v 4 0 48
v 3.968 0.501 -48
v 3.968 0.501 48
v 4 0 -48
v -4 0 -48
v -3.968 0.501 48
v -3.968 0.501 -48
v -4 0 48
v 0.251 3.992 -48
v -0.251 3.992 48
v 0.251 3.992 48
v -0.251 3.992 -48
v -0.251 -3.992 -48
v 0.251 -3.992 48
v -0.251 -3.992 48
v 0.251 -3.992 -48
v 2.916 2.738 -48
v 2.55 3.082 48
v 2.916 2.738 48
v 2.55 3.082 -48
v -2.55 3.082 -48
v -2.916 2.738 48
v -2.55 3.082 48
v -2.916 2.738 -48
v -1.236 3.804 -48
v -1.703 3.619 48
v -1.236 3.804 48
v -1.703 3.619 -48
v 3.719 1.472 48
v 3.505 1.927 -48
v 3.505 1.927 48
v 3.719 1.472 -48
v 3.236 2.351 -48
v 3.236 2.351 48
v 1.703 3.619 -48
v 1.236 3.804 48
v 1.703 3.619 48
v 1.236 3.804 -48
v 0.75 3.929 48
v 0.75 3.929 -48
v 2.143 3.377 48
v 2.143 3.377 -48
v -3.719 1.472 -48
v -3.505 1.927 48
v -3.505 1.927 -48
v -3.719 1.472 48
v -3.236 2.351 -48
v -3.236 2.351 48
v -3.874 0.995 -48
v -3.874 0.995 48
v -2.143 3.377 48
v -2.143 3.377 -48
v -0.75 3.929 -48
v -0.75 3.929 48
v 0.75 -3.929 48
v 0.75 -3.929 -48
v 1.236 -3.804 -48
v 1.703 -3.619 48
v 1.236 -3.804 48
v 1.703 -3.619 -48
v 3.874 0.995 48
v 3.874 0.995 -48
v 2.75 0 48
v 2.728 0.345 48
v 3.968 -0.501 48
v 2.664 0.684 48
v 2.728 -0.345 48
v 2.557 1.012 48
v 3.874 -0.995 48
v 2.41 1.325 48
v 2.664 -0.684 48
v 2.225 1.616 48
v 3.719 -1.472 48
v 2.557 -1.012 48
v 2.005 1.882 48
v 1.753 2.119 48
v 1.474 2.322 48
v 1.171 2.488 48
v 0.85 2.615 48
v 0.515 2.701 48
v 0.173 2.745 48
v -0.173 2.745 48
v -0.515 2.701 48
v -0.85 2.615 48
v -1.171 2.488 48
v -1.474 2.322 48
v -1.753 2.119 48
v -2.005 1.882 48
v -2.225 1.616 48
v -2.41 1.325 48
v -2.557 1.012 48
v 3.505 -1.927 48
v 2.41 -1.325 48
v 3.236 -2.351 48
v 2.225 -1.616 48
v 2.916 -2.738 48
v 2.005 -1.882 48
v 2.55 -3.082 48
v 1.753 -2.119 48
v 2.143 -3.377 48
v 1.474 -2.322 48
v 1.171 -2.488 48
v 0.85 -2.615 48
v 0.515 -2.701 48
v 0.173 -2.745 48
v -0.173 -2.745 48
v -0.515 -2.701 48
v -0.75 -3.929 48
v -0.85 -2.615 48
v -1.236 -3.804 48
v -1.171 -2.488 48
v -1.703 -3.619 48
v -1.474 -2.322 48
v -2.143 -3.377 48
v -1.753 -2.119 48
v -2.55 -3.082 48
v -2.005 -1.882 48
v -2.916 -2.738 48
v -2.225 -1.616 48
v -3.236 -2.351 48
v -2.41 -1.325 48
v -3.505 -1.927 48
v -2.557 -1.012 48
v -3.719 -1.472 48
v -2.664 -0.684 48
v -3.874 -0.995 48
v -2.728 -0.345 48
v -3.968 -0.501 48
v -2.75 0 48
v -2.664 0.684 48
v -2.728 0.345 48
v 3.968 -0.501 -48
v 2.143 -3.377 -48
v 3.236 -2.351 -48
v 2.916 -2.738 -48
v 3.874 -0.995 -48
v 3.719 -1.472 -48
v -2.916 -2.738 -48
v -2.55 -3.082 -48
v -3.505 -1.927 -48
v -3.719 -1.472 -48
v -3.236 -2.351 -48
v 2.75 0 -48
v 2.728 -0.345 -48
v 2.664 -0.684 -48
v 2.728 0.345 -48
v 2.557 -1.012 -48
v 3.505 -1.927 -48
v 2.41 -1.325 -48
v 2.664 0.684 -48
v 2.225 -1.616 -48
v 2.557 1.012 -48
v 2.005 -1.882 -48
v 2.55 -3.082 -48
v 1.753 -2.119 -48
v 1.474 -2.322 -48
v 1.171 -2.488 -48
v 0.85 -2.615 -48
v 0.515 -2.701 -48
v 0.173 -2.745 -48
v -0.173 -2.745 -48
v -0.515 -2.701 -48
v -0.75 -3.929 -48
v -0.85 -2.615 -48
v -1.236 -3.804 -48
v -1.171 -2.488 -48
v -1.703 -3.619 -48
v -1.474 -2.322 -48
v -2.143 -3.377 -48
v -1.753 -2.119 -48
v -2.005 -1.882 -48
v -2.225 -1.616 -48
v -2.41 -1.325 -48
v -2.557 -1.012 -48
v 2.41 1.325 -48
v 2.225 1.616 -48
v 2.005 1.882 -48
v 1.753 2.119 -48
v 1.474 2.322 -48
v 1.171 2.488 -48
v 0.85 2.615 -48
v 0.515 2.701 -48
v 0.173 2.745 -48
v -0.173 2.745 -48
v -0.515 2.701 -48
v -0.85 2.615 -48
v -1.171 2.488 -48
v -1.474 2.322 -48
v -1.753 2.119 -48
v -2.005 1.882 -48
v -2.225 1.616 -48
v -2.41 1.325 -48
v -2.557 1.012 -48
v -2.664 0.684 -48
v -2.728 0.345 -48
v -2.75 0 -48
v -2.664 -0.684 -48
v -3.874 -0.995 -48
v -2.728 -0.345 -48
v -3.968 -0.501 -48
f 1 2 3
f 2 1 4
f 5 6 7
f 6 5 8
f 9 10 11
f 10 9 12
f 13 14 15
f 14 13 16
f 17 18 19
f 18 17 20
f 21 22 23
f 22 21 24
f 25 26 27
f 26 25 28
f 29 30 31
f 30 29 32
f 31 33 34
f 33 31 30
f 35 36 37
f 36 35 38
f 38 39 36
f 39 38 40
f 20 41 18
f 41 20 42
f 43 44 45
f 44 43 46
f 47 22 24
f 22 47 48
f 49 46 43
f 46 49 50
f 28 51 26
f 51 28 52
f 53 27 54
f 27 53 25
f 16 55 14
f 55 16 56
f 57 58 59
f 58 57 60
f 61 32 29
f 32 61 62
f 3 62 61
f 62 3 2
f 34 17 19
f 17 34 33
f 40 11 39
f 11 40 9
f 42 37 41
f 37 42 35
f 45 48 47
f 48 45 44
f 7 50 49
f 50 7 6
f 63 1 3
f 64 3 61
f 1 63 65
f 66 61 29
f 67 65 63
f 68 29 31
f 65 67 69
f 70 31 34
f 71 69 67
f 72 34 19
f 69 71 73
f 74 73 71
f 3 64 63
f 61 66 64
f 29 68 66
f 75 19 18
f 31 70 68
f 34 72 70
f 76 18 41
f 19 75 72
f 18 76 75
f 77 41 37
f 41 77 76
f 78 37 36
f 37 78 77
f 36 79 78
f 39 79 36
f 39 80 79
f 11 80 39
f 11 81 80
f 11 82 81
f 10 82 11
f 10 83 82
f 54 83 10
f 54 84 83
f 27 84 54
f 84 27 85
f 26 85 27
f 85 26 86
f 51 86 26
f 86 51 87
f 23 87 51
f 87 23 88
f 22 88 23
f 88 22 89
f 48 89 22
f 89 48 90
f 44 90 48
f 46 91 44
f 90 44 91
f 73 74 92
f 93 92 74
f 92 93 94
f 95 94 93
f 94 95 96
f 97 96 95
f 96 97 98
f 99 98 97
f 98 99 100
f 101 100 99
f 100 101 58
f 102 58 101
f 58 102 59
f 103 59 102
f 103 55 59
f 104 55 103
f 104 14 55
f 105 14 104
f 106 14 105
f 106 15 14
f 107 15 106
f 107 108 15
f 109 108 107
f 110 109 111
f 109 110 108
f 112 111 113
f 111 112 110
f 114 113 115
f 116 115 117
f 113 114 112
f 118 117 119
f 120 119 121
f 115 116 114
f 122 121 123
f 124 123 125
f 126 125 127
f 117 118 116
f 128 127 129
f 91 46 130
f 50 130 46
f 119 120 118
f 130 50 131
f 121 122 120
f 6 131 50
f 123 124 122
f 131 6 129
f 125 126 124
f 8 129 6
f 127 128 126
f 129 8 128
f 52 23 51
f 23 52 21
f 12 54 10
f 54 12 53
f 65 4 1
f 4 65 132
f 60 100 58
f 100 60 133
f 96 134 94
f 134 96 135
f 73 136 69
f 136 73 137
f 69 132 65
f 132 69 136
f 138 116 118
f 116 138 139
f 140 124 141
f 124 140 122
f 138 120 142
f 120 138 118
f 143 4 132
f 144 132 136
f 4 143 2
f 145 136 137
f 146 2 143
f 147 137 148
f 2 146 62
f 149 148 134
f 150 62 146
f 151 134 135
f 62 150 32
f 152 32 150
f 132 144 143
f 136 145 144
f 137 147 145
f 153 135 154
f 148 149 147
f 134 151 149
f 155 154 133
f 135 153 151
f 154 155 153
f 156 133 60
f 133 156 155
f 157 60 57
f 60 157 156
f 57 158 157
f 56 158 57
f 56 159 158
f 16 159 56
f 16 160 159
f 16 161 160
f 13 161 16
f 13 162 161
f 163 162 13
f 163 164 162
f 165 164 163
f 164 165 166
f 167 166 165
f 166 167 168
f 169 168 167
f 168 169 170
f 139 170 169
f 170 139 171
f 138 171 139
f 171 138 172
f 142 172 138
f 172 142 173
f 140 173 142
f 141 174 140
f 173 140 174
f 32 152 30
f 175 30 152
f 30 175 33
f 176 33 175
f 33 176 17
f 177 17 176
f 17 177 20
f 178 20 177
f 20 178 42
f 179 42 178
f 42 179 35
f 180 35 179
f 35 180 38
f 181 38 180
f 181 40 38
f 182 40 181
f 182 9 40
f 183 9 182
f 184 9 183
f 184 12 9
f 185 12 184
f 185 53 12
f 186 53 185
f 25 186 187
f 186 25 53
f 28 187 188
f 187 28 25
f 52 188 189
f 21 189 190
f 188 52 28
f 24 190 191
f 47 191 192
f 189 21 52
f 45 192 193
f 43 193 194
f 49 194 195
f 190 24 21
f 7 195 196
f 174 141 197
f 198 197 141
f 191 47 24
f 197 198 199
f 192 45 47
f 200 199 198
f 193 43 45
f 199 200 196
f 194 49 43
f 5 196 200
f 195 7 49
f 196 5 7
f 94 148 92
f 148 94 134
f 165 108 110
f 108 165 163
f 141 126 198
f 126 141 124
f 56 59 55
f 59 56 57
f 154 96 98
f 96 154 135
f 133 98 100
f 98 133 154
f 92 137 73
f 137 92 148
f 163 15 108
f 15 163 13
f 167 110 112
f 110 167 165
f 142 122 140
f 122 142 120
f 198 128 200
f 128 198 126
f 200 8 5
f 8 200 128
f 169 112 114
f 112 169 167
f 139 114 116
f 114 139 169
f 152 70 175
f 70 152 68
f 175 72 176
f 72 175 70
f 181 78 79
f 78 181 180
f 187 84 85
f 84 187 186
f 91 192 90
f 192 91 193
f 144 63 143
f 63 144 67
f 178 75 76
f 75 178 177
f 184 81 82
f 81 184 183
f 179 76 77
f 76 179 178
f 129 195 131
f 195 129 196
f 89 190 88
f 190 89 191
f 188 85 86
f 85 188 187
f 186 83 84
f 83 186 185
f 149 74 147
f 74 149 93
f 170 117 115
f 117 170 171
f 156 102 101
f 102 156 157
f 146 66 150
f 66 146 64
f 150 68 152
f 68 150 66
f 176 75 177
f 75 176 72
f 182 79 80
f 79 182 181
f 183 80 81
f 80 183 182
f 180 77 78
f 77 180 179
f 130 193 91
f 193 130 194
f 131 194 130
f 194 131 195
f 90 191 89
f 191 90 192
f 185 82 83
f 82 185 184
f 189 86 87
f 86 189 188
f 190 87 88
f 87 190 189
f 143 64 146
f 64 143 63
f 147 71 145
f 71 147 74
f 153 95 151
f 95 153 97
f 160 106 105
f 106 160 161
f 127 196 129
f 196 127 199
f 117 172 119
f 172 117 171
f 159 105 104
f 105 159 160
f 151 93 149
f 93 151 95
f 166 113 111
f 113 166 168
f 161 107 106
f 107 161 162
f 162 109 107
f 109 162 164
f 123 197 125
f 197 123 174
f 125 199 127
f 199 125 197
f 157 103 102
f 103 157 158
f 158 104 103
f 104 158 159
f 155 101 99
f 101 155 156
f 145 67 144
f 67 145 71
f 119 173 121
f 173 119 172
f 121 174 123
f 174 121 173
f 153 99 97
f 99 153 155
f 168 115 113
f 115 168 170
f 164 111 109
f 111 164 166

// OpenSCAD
$fn = 50;


difference() {
	union() {
		translate(v = [0, 0, -48.0000000000]) {
			cylinder(h = 96, r = 4.0000000000);
		}
	}
	union() {
		translate(v = [0, 0, -100.0000000000]) {
			cylinder(h = 200, r = 2.7500000000);
		}
	}
}
